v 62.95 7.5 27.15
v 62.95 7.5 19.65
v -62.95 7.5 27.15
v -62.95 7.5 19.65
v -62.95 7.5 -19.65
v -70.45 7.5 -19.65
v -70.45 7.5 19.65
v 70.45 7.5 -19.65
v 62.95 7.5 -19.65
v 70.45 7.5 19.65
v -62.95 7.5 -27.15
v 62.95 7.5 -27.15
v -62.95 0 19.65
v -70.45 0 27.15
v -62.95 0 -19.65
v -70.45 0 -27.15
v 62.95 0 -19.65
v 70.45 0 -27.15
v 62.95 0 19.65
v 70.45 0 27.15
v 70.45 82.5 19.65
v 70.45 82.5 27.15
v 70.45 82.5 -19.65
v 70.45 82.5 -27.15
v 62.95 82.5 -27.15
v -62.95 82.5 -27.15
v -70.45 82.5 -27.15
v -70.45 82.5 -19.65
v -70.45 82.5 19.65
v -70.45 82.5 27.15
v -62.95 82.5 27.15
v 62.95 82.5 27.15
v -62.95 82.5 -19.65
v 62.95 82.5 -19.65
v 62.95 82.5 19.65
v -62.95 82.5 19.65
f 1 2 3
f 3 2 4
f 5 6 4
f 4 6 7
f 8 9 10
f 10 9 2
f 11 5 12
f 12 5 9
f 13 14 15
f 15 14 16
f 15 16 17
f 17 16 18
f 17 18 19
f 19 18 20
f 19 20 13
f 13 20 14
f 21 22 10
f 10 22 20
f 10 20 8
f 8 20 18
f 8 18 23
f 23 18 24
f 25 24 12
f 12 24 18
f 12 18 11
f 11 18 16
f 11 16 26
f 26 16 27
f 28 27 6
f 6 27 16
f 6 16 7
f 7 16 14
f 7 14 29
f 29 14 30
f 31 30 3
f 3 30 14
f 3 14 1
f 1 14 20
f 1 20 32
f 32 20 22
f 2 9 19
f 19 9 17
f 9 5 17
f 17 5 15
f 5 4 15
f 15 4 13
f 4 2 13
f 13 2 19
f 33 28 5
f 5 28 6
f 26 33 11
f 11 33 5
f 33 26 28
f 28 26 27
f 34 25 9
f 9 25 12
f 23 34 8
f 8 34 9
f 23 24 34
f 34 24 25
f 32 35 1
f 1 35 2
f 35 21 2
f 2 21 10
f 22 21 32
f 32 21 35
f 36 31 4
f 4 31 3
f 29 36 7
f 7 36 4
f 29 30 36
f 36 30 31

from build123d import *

# Parameters (mm, degrees)
SKETCH1_W           = 140.9
SKETCH1_H           = 54.3
SKETCH1_W_2         = 125.9
SKETCH1_H_2         = 39.3
BOSS_EXTRUDE1_DEPTH = 7.5
SKETCH2_W           = 7.5
SKETCH2_H           = 7.5
BOSS_EXTRUDE2_DEPTH = 75


with BuildPart() as part:
    # Sketch1 → Boss-Extrude1 (new body)
    with BuildSketch(Plane(origin=(0, 0, 0), x_dir=(1, 0, 0), z_dir=(0, 1, 0))):
        Rectangle(SKETCH1_W, SKETCH1_H)
        Rectangle(SKETCH1_W_2, SKETCH1_H_2, mode=Mode.SUBTRACT)
    extrude(amount=BOSS_EXTRUDE1_DEPTH)

    # Sketch2 → Boss-Extrude2 (add)
    with BuildSketch(Plane(origin=(0, 7.5, 0), x_dir=(1, 0, 0), z_dir=(0, 1, 0))):
        with Locations((-66.7, 23.4)):
            Rectangle(SKETCH2_W, SKETCH2_H)
        with Locations((66.7, 23.4)):
            Rectangle(SKETCH2_W, SKETCH2_H)
        with Locations((66.7, -23.4)):
            Rectangle(SKETCH2_W, SKETCH2_H)
        with Locations((-66.7, -23.4)):
            Rectangle(SKETCH2_W, SKETCH2_H)
    extrude(amount=BOSS_EXTRUDE2_DEPTH)


solid = part.part
